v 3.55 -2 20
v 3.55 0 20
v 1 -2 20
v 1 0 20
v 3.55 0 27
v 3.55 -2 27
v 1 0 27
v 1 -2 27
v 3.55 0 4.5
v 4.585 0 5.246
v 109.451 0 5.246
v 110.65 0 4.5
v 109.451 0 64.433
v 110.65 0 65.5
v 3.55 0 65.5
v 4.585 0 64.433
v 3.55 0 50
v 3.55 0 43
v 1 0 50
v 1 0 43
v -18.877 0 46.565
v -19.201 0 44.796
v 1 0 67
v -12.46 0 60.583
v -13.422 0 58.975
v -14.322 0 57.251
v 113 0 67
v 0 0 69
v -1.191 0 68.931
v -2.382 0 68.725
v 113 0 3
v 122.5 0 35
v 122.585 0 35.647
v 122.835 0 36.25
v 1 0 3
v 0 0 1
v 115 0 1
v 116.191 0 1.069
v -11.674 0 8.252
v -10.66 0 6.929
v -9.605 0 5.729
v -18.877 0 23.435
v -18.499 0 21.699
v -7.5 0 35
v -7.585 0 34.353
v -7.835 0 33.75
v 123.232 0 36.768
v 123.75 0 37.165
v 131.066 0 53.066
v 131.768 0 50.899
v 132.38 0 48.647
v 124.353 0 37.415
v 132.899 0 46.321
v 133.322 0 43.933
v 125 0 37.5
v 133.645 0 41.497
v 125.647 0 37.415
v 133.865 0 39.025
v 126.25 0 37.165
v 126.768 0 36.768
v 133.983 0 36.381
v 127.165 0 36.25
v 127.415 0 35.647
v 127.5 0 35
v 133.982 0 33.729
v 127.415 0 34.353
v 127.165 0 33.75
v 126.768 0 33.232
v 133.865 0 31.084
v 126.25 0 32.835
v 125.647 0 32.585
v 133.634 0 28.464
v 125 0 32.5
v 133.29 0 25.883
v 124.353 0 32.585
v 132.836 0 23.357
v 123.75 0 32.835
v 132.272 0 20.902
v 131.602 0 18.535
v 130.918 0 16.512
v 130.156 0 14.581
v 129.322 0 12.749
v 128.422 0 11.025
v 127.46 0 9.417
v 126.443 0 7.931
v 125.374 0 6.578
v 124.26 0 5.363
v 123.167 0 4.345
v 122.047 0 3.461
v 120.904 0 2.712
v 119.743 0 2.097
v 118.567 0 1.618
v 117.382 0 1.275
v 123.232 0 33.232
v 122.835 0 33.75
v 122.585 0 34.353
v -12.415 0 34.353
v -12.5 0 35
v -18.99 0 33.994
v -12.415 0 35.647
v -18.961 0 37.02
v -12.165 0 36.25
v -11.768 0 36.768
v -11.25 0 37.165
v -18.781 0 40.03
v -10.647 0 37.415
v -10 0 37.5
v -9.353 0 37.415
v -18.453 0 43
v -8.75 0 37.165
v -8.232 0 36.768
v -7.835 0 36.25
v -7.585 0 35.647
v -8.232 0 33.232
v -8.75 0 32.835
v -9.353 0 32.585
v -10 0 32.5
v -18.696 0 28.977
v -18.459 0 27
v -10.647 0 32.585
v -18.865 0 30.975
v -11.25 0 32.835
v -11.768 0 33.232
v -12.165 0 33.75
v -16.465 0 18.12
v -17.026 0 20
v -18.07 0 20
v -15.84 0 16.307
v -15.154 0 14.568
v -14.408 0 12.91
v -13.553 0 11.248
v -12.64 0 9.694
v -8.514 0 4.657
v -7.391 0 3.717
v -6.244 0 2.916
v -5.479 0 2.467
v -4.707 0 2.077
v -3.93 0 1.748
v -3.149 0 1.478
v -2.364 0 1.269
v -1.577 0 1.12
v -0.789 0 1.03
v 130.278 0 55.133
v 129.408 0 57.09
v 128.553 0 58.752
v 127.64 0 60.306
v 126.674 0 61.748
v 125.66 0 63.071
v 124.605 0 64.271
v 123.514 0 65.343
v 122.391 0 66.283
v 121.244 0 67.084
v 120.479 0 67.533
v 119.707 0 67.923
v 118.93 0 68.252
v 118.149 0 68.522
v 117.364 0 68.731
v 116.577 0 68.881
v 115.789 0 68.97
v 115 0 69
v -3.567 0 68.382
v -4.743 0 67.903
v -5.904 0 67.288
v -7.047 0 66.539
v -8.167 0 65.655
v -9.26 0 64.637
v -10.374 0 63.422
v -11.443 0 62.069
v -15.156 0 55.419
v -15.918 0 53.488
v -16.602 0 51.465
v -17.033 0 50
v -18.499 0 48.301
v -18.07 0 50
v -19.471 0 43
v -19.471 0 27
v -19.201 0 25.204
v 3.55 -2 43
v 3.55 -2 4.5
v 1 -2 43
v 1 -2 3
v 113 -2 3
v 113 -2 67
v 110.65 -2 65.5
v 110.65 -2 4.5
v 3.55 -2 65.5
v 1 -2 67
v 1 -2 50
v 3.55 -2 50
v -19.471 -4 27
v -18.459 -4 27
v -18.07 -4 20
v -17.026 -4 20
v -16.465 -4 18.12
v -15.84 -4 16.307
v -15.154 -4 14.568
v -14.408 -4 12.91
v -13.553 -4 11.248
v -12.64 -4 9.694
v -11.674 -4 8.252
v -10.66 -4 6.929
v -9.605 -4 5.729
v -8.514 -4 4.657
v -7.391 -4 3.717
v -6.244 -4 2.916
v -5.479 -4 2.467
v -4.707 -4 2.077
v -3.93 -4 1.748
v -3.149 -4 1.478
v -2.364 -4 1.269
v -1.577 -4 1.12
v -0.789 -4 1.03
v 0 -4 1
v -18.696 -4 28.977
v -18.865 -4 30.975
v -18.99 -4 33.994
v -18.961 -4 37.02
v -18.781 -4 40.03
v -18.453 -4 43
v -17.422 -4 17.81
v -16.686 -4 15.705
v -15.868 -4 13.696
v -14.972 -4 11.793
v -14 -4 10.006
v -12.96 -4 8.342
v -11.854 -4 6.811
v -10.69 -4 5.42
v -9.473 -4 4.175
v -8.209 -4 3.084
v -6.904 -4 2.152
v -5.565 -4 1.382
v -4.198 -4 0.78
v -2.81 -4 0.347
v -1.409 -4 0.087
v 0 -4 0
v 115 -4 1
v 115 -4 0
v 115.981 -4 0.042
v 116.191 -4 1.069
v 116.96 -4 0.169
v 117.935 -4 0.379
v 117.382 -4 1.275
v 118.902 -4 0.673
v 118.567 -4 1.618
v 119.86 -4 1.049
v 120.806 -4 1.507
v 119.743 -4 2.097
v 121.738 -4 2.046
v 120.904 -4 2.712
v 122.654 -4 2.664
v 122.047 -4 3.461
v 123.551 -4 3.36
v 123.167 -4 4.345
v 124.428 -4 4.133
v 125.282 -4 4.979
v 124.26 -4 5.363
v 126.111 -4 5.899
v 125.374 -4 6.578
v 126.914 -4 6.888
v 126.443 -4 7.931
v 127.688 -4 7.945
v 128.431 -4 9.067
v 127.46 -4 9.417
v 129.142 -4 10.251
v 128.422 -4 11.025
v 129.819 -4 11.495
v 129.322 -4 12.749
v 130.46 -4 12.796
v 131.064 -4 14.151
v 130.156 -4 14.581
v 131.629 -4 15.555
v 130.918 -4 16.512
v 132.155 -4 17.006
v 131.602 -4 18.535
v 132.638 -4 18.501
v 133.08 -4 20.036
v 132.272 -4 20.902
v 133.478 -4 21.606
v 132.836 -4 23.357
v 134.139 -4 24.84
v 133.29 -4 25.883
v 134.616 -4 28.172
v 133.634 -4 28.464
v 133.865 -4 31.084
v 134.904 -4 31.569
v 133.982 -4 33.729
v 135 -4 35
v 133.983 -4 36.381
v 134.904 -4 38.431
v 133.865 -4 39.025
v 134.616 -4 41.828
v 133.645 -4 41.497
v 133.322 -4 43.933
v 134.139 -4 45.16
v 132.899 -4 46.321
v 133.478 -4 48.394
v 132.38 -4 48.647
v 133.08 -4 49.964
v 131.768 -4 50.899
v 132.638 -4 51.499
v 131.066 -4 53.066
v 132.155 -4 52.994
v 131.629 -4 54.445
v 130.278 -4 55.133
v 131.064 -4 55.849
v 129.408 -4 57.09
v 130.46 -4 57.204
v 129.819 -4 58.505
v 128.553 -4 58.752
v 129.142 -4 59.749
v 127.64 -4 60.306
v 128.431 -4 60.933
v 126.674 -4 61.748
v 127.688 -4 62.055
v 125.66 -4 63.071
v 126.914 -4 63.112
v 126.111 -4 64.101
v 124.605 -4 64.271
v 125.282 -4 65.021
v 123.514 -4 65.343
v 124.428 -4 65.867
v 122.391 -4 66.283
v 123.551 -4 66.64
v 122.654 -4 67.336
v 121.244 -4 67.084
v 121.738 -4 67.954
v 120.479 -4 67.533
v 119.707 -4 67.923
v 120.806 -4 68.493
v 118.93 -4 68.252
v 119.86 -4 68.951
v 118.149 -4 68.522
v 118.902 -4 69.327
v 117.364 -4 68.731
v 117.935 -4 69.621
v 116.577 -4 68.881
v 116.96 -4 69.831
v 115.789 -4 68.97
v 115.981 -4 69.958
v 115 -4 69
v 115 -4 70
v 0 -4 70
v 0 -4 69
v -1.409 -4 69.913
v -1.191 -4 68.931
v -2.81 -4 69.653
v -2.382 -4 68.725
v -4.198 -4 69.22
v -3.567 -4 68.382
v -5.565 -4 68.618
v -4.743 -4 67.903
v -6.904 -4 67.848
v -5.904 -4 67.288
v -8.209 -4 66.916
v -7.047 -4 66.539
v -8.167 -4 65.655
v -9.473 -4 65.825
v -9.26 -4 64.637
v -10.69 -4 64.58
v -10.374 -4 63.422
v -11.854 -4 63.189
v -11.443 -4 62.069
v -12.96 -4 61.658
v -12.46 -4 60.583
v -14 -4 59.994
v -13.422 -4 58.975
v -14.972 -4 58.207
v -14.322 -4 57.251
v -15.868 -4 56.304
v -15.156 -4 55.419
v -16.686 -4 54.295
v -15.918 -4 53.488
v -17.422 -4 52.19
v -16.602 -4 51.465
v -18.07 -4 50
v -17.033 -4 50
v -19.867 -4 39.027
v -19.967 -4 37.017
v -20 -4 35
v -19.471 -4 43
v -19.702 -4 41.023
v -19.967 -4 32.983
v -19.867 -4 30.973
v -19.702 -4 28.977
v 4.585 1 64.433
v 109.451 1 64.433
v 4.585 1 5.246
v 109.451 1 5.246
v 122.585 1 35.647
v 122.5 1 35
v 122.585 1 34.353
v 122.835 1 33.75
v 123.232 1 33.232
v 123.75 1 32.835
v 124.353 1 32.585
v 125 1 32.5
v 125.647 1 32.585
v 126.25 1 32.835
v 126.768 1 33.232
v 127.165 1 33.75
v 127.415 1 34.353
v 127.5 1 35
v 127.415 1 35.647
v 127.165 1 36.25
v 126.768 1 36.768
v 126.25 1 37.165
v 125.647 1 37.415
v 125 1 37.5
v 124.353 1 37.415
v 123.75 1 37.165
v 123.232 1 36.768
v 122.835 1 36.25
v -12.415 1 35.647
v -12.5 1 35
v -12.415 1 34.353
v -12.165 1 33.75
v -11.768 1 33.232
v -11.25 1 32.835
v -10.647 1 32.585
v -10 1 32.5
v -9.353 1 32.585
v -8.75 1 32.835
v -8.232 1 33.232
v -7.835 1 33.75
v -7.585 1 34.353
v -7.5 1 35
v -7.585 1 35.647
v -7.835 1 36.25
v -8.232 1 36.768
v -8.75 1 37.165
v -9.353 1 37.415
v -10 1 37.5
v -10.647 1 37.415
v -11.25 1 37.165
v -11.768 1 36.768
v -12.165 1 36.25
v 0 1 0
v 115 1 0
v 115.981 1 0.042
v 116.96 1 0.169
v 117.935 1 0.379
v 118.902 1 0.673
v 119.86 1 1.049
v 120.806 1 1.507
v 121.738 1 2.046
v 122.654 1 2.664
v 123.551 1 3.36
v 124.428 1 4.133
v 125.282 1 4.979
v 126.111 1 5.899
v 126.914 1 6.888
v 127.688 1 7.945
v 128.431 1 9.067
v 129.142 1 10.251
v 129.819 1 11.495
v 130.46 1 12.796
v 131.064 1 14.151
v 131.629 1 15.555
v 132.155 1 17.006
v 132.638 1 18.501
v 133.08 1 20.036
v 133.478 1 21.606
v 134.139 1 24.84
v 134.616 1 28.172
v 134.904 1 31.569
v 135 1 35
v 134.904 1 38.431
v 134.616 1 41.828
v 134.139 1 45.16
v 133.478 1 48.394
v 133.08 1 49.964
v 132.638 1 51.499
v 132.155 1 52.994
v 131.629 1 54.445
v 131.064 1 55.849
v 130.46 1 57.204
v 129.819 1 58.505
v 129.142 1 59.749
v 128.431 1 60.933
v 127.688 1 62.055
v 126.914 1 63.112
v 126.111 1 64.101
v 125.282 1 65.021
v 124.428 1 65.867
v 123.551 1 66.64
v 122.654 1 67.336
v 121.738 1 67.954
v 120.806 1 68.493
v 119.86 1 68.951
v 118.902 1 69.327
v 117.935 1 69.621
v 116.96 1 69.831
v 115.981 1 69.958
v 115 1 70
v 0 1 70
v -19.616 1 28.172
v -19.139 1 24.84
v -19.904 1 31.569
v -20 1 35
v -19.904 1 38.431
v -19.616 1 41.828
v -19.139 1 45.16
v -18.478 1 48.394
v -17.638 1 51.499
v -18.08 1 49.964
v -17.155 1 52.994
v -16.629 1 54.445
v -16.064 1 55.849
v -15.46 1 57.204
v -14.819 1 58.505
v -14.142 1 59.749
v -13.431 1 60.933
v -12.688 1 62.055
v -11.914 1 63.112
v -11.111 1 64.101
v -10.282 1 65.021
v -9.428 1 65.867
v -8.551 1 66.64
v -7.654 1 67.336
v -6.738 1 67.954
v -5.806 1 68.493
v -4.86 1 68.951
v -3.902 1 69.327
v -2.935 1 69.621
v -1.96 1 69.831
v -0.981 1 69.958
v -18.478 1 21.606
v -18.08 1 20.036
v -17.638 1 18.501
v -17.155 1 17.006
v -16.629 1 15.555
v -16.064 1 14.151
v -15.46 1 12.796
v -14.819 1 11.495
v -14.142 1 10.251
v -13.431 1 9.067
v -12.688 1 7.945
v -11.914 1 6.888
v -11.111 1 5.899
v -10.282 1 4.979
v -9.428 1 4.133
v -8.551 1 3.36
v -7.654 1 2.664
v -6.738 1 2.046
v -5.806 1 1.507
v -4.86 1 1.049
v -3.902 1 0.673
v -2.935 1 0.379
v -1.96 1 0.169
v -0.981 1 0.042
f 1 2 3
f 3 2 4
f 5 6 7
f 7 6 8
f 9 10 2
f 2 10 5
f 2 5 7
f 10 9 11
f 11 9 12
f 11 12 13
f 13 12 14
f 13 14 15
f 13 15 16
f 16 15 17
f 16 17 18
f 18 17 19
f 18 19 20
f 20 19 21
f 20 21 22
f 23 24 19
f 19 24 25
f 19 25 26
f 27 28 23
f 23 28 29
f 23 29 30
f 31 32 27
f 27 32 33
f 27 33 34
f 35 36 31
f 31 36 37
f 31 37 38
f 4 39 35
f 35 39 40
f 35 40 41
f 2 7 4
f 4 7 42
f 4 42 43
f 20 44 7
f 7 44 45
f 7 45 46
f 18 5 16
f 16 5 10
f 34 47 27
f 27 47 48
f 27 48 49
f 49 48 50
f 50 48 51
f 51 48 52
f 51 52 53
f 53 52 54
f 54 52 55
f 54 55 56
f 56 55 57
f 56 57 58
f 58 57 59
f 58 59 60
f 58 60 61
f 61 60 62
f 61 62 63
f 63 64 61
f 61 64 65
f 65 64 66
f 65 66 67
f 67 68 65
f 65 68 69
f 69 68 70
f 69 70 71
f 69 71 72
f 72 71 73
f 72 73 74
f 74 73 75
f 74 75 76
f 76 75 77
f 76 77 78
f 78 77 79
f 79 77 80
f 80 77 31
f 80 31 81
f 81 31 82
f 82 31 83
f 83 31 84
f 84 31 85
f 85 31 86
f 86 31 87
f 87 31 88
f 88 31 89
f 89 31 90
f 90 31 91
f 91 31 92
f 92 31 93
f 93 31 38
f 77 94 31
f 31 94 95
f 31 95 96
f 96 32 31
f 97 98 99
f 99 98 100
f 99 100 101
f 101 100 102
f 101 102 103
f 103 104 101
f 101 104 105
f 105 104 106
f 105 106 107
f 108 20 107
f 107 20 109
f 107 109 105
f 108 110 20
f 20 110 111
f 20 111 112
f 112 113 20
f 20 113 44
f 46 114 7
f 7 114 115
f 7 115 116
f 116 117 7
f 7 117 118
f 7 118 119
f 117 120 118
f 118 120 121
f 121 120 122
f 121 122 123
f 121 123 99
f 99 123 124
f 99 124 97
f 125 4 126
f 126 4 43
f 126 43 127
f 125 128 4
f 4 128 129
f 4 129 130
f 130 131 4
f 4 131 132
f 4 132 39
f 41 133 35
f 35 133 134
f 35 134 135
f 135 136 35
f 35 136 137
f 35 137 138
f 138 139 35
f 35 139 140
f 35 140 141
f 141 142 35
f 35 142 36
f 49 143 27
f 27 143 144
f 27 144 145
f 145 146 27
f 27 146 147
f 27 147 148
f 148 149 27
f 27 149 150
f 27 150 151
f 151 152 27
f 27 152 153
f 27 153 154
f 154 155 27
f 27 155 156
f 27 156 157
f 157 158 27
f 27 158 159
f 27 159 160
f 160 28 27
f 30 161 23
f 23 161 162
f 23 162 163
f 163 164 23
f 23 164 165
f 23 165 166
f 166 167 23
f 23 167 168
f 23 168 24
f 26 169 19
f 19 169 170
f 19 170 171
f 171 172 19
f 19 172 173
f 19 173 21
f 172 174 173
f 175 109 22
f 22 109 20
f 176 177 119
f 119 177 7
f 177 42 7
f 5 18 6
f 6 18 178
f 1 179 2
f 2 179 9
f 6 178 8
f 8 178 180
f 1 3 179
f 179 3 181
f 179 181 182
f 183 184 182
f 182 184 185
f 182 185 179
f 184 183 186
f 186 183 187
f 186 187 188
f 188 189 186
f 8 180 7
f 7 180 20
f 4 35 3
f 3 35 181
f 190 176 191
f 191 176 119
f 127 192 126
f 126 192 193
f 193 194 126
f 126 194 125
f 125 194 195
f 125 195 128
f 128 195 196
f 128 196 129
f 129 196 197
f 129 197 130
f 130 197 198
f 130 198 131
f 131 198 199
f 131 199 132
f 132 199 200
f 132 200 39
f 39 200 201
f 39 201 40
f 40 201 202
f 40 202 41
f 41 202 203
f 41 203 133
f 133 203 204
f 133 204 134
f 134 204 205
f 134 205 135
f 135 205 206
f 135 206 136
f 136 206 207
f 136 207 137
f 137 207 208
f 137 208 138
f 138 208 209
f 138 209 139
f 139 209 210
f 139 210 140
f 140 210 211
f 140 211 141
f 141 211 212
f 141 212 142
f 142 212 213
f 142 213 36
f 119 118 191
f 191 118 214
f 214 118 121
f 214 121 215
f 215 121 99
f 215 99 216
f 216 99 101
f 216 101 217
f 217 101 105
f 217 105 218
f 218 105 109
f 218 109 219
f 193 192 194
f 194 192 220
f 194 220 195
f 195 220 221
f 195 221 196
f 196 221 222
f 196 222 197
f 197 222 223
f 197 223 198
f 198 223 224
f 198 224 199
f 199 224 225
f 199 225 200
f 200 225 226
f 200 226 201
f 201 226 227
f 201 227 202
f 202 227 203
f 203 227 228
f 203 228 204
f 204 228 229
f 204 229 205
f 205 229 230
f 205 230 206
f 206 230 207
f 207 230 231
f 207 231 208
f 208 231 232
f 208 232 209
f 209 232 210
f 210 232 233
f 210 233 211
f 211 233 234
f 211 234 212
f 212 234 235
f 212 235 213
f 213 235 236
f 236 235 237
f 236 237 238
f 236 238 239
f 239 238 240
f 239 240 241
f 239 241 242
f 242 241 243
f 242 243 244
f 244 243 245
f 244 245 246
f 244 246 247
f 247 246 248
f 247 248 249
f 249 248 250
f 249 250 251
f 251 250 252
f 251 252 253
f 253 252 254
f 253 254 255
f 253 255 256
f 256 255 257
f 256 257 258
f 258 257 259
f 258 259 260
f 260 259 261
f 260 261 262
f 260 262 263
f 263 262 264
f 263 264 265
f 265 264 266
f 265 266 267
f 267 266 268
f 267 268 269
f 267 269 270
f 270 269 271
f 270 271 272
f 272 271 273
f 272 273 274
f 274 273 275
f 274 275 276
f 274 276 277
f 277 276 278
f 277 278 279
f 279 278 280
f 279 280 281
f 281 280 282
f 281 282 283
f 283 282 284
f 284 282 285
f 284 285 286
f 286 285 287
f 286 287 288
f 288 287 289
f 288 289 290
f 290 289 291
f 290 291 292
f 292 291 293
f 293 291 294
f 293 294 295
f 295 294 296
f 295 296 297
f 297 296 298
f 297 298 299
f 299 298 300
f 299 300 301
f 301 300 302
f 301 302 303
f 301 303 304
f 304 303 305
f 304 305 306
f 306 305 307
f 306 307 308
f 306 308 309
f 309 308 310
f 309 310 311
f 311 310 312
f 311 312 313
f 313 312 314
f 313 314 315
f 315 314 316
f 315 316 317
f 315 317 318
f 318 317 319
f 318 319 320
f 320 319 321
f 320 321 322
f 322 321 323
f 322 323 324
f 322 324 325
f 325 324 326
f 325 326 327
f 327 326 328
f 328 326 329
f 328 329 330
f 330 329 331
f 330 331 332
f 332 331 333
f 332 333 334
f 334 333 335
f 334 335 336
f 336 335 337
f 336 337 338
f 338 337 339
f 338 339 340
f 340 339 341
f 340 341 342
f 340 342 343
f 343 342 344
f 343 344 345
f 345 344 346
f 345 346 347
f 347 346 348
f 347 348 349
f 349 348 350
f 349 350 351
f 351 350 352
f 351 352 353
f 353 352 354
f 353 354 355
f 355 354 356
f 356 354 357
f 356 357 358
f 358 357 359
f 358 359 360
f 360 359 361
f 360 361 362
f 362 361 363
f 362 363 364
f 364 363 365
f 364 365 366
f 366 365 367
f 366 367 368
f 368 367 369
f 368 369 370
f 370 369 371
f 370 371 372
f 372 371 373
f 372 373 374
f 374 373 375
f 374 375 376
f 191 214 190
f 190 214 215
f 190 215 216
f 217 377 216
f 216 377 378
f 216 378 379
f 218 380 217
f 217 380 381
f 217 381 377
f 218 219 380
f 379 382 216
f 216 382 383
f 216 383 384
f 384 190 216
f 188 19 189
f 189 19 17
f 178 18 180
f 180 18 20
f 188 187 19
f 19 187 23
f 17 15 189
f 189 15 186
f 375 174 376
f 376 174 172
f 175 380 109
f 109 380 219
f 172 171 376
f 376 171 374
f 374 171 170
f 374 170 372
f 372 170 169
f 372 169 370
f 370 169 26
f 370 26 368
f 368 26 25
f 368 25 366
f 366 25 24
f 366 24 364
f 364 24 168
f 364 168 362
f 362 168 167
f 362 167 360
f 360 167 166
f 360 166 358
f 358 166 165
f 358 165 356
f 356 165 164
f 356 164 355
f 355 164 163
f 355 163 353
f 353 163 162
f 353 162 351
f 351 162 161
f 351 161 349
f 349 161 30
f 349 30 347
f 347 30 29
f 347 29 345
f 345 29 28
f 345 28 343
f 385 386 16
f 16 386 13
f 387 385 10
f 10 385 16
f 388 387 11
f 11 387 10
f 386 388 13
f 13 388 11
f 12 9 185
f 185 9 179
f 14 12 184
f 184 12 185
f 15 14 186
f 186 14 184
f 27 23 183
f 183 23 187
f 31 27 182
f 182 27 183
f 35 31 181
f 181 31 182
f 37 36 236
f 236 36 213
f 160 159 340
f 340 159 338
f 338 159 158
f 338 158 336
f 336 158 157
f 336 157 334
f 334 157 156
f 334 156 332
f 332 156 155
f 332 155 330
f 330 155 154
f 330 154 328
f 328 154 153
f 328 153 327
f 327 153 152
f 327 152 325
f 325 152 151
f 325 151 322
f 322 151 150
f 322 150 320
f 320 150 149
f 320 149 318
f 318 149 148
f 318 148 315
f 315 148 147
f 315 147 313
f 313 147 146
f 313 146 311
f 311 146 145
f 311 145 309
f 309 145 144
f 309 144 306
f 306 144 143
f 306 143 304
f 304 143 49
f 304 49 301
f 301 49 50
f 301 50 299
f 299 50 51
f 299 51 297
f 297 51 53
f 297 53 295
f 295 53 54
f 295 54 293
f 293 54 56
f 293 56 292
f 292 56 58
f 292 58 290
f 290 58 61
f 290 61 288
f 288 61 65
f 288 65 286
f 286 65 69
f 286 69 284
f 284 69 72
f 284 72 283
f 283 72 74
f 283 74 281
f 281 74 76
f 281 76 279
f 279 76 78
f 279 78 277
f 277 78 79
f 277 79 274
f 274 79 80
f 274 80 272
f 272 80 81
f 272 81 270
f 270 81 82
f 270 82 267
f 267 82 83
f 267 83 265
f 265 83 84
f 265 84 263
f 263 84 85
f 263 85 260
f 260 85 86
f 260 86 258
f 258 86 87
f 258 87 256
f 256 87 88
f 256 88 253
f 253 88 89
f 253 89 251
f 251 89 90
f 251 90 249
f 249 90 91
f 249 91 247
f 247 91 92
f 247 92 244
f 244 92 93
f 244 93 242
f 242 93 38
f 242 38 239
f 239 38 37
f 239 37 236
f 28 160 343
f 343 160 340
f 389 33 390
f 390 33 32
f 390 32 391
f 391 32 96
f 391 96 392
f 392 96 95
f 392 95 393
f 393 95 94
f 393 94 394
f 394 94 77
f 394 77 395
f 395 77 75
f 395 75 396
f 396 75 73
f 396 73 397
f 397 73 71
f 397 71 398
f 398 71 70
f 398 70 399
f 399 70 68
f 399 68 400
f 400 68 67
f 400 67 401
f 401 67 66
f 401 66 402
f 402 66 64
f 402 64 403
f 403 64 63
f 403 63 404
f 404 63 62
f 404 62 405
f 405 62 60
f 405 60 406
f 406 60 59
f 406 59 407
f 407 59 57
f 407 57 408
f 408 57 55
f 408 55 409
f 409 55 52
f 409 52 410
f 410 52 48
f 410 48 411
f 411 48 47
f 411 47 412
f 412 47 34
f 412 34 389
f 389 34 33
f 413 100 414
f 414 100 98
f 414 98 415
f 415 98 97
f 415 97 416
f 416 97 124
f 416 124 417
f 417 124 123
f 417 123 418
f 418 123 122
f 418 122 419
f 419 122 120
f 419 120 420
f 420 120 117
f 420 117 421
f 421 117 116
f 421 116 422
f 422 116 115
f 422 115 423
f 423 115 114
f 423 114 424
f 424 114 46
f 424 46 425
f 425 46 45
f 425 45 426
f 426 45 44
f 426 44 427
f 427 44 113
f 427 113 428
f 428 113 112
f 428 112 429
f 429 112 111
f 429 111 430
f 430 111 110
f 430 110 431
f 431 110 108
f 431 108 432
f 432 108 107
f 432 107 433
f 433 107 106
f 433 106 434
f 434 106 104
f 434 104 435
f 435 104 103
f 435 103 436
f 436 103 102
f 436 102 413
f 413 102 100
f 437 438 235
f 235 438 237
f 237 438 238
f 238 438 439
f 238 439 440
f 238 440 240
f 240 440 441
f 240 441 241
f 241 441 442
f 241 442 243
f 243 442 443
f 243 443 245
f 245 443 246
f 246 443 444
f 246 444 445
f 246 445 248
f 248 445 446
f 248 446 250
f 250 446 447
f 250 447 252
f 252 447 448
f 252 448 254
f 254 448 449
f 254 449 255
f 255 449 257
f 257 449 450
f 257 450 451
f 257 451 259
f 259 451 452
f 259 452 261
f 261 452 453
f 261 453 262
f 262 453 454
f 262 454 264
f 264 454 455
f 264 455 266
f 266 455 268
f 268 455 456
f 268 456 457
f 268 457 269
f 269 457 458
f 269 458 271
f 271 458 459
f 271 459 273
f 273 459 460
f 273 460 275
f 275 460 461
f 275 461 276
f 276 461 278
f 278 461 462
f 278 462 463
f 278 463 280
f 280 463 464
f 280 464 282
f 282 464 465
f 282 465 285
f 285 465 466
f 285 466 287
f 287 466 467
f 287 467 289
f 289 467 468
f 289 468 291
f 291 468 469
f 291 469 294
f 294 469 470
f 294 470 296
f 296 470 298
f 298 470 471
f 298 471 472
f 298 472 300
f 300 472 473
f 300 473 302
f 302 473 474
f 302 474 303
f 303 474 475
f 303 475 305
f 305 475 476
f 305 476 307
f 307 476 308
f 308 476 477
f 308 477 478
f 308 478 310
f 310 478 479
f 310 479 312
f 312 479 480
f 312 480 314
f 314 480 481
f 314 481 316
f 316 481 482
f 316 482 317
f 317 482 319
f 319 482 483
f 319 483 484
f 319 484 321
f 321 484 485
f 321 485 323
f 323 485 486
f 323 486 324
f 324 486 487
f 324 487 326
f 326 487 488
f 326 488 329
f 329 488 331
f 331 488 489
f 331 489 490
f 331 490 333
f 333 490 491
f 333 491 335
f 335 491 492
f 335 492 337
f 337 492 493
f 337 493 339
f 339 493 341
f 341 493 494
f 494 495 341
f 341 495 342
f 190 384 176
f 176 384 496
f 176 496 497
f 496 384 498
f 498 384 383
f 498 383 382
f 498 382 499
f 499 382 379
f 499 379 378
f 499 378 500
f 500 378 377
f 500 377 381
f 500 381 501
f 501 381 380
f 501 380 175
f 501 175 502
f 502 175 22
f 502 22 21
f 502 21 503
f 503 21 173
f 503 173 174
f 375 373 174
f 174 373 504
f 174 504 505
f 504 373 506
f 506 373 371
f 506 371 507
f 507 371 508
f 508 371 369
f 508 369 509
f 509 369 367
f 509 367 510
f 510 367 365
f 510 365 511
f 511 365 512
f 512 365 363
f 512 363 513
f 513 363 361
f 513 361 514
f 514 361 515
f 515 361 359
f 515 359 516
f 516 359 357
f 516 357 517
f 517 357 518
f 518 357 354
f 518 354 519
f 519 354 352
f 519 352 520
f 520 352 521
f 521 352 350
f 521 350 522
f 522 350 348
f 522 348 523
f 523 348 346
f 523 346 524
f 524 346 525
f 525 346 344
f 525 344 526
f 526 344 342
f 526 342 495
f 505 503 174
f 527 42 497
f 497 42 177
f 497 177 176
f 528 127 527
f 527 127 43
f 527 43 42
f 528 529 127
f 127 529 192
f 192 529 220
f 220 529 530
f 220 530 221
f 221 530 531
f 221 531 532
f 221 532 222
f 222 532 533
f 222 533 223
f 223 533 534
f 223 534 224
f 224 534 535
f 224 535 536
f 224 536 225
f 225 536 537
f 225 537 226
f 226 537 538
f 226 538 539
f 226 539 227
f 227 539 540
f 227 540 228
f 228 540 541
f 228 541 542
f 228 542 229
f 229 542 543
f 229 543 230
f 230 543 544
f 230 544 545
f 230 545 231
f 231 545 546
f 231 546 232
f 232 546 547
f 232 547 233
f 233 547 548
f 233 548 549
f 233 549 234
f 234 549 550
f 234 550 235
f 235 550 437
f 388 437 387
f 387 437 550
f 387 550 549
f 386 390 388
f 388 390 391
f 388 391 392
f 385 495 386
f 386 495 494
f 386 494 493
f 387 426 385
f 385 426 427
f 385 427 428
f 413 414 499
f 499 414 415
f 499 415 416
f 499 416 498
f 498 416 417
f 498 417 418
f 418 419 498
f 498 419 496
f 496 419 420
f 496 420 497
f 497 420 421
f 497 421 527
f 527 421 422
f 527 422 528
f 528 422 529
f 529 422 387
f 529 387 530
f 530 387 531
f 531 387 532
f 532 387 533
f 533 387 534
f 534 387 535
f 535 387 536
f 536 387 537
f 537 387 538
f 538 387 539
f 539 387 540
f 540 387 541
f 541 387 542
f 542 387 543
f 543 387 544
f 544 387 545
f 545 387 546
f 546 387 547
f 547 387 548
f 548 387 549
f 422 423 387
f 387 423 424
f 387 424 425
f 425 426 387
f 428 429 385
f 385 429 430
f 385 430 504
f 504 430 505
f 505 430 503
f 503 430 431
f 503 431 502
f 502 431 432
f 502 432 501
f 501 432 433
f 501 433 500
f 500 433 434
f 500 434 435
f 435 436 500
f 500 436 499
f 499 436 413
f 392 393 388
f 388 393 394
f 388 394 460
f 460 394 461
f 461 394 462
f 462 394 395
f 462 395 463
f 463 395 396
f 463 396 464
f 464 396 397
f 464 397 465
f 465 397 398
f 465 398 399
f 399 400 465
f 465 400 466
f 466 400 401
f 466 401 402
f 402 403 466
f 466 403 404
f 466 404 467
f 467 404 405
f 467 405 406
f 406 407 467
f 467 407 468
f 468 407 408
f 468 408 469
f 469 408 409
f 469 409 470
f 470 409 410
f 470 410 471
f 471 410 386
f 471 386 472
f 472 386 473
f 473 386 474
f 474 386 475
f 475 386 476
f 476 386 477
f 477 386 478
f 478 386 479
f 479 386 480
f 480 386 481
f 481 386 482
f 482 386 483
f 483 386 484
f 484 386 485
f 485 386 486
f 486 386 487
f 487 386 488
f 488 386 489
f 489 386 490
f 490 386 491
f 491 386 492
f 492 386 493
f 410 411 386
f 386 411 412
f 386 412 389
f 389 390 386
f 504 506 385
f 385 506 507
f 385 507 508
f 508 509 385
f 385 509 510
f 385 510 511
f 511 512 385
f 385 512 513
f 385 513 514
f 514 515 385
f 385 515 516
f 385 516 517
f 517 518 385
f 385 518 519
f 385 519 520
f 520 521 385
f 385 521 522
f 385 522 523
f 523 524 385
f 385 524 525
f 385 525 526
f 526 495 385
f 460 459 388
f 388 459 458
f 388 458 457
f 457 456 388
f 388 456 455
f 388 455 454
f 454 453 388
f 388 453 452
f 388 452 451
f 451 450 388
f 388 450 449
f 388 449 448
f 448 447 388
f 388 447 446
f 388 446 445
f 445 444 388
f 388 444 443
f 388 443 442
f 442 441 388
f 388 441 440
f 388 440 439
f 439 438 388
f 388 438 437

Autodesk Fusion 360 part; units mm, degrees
sketch "Sketch1" plane through (0, 0, 0) normal (0, 1, 0) x (1, 0, 0)
  line L0 (0, 0) -> (115, 0)
  line L1 (115, -70) -> (0, -70)
  ellipse E0 centre (0, -35) end of major axis (0, -70) minor radius 20 (0, 0) -> (0, -70) ccw
  ellipse E1 centre (115, -35) end of major axis (115, -70) minor radius 20 (115, -70) -> (115, 0) ccw
  circle A0 centre (-10, -35) radius 2.5
  circle A1 centre (125, -35) radius 2.5
  dimension "d1" = 20
  dimension "d2" = 5
  dimension "d3" = 10
extrude "Extrude1" add sketch "Sketch1" along normal blind 1
sketch "Sketch3" plane through (0, 0, 0) normal (0, -1, 0) x (1, 0, 0)
  circle A0 centre (-10, 35) radius 2.5
  circle A1 centre (125, 35) radius 2.5
  ellipse E0 centre (0, 35) end of major axis (0, 70) minor radius 20 (0, 70) -> (0, 0) ccw
  line L0 (0, 0) -> (115, 0)
  ellipse E1 centre (115, 35) end of major axis (115, 70) minor radius 20 (115, 0) -> (115, 70) ccw
  line L1 (115, 70) -> (0, 70)
  line L2 (0, 1) -> (115, 1)
  spline S0 degree 3 poles (115, 1) (118.1745, 1) (121.3862, 2.4713) (124.2603, 5.3633) (127.2867, 8.4088) (129.8847, 13.0253) (131.6024, 18.5351) (133.5298, 24.7176) (134.3377, 31.9986) (133.8651, 39.0248) (133.4191, 45.6553) (131.8372, 52.0318) (129.4075, 57.0895) (127.2109, 61.662) (124.3332, 65.1363) (121.2436, 67.0835) (119.2133, 68.3631) (117.1029, 69) (115, 69) knots 3.141593 3.141593 3.141593 3.141593 3.663435 3.663435 3.663435 4.212955 4.212955 4.212955 4.82957 4.82957 4.82957 5.411454 5.411454 5.411454 5.937501 5.937501 5.937501 6.283185 6.283185 6.283185 6.283185
  line L3 (115, 69) -> (0, 69)
  spline S1 degree 3 poles (0, 69) (-3.1745, 69) (-6.3862, 67.5287) (-9.2603, 64.6367) (-12.2867, 61.5912) (-14.8847, 56.9747) (-16.6024, 51.4649) (-18.5298, 45.2824) (-19.3377, 38.0014) (-18.8651, 30.9752) (-18.4191, 24.3447) (-16.8372, 17.9682) (-14.4075, 12.9105) (-12.2109, 8.338) (-9.3332, 4.8637) (-6.2436, 2.9165) (-4.2133, 1.6369) (-2.1029, 1) (0, 1) knots 0 0 0 0 0.521842 0.521842 0.521842 1.071362 1.071362 1.071362 1.687978 1.687978 1.687978 2.269861 2.269861 2.269861 2.795908 2.795908 2.795908 3.141593 3.141593 3.141593 3.141593
  dimension "d6" = -1
extrude "Extrude2" add sketch "Sketch3" along normal blind 4 contours E0 L0 E1 L1
sketch "Sketch4" plane through (0, 0, 0) normal (0, 1, 0) x (1, 0, 0)
  line L0 (3.55, -65.5) -> (110.65, -65.5)
  line L1 (110.65, -65.5) -> (110.65, -4.5)
  line L2 (110.65, -4.5) -> (3.55, -4.5)
  line L3 (3.55, -4.5) -> (3.55, -65.5)
  line L4 (115, -1) -> (0, -1)
  line L5 (1, -67) -> (113, -67)
  line L6 (113, -67) -> (113, -3)
  line L7 (113, -3) -> (1, -3)
  line L8 (1, -3) -> (1, -67)
  point P0 (0, -35)
  dimension "d9" = 61
  dimension "d10" = 107.1
  dimension "d11" = 3.55
  dimension "d12" = 3.5
extrude "Extrude3" add sketch "Sketch4" against normal blind 2
sketch "Sketch5" plane through (0, 0, 0) normal (0, 1, 0) x (-1, 0, 0)
  line L0 (-4.5848, 64.4333) -> (-109.4505, 64.4333)
  line L1 (-109.4505, 64.4333) -> (-109.4505, 5.2457)
  line L2 (-109.4505, 5.2457) -> (-4.5848, 5.2457)
  line L3 (-4.5848, 5.2457) -> (-4.5848, 64.4333)
extrude "Extrude4" cut sketch "Sketch5" along normal blind 10
sketch "Sketch6" plane through (1, 0, 0) normal (-1, 0, 0) x (0, -1, 0)
  line L0 (0, 67) -> (0, 3)
  line L1 (0, 3) -> (2, 3)
  line L2 (2, 3) -> (2, 67)
  line L3 (2, 67) -> (0, 67)
  line L4 (-3, 27) -> (6, 27)
  line L5 (6, 27) -> (6, 20)
  line L6 (6, 20) -> (-3, 20)
  line L7 (-3, 20) -> (-3, 27)
  line L8 (0, 35) -> (9, 35)
  line L9 (-3, 43) -> (6, 43)
  line L10 (6, 43) -> (6, 50)
  line L11 (6, 50) -> (-3, 50)
  line L12 (-3, 50) -> (-3, 43)
extrude "Extrude5" cut sketch "Sketch6" along normal blind 30 contours L0 L2 L9 L11 | L2 L9 L10 L11
extrude "Extrude6" cut sketch "Sketch6" against normal blind 9 contours L0 L2 L9 L11 | L2 L9 L10 L11
extrude "Extrude7" cut sketch "Sketch6" along normal blind 30 contours L0 L2 L4 L6 | L2 L4 L5 L6
extrude "Extrude8" cut sketch "Sketch6" against normal blind 10 contours L0 L2 L4 L6 | L2 L4 L5 L6
